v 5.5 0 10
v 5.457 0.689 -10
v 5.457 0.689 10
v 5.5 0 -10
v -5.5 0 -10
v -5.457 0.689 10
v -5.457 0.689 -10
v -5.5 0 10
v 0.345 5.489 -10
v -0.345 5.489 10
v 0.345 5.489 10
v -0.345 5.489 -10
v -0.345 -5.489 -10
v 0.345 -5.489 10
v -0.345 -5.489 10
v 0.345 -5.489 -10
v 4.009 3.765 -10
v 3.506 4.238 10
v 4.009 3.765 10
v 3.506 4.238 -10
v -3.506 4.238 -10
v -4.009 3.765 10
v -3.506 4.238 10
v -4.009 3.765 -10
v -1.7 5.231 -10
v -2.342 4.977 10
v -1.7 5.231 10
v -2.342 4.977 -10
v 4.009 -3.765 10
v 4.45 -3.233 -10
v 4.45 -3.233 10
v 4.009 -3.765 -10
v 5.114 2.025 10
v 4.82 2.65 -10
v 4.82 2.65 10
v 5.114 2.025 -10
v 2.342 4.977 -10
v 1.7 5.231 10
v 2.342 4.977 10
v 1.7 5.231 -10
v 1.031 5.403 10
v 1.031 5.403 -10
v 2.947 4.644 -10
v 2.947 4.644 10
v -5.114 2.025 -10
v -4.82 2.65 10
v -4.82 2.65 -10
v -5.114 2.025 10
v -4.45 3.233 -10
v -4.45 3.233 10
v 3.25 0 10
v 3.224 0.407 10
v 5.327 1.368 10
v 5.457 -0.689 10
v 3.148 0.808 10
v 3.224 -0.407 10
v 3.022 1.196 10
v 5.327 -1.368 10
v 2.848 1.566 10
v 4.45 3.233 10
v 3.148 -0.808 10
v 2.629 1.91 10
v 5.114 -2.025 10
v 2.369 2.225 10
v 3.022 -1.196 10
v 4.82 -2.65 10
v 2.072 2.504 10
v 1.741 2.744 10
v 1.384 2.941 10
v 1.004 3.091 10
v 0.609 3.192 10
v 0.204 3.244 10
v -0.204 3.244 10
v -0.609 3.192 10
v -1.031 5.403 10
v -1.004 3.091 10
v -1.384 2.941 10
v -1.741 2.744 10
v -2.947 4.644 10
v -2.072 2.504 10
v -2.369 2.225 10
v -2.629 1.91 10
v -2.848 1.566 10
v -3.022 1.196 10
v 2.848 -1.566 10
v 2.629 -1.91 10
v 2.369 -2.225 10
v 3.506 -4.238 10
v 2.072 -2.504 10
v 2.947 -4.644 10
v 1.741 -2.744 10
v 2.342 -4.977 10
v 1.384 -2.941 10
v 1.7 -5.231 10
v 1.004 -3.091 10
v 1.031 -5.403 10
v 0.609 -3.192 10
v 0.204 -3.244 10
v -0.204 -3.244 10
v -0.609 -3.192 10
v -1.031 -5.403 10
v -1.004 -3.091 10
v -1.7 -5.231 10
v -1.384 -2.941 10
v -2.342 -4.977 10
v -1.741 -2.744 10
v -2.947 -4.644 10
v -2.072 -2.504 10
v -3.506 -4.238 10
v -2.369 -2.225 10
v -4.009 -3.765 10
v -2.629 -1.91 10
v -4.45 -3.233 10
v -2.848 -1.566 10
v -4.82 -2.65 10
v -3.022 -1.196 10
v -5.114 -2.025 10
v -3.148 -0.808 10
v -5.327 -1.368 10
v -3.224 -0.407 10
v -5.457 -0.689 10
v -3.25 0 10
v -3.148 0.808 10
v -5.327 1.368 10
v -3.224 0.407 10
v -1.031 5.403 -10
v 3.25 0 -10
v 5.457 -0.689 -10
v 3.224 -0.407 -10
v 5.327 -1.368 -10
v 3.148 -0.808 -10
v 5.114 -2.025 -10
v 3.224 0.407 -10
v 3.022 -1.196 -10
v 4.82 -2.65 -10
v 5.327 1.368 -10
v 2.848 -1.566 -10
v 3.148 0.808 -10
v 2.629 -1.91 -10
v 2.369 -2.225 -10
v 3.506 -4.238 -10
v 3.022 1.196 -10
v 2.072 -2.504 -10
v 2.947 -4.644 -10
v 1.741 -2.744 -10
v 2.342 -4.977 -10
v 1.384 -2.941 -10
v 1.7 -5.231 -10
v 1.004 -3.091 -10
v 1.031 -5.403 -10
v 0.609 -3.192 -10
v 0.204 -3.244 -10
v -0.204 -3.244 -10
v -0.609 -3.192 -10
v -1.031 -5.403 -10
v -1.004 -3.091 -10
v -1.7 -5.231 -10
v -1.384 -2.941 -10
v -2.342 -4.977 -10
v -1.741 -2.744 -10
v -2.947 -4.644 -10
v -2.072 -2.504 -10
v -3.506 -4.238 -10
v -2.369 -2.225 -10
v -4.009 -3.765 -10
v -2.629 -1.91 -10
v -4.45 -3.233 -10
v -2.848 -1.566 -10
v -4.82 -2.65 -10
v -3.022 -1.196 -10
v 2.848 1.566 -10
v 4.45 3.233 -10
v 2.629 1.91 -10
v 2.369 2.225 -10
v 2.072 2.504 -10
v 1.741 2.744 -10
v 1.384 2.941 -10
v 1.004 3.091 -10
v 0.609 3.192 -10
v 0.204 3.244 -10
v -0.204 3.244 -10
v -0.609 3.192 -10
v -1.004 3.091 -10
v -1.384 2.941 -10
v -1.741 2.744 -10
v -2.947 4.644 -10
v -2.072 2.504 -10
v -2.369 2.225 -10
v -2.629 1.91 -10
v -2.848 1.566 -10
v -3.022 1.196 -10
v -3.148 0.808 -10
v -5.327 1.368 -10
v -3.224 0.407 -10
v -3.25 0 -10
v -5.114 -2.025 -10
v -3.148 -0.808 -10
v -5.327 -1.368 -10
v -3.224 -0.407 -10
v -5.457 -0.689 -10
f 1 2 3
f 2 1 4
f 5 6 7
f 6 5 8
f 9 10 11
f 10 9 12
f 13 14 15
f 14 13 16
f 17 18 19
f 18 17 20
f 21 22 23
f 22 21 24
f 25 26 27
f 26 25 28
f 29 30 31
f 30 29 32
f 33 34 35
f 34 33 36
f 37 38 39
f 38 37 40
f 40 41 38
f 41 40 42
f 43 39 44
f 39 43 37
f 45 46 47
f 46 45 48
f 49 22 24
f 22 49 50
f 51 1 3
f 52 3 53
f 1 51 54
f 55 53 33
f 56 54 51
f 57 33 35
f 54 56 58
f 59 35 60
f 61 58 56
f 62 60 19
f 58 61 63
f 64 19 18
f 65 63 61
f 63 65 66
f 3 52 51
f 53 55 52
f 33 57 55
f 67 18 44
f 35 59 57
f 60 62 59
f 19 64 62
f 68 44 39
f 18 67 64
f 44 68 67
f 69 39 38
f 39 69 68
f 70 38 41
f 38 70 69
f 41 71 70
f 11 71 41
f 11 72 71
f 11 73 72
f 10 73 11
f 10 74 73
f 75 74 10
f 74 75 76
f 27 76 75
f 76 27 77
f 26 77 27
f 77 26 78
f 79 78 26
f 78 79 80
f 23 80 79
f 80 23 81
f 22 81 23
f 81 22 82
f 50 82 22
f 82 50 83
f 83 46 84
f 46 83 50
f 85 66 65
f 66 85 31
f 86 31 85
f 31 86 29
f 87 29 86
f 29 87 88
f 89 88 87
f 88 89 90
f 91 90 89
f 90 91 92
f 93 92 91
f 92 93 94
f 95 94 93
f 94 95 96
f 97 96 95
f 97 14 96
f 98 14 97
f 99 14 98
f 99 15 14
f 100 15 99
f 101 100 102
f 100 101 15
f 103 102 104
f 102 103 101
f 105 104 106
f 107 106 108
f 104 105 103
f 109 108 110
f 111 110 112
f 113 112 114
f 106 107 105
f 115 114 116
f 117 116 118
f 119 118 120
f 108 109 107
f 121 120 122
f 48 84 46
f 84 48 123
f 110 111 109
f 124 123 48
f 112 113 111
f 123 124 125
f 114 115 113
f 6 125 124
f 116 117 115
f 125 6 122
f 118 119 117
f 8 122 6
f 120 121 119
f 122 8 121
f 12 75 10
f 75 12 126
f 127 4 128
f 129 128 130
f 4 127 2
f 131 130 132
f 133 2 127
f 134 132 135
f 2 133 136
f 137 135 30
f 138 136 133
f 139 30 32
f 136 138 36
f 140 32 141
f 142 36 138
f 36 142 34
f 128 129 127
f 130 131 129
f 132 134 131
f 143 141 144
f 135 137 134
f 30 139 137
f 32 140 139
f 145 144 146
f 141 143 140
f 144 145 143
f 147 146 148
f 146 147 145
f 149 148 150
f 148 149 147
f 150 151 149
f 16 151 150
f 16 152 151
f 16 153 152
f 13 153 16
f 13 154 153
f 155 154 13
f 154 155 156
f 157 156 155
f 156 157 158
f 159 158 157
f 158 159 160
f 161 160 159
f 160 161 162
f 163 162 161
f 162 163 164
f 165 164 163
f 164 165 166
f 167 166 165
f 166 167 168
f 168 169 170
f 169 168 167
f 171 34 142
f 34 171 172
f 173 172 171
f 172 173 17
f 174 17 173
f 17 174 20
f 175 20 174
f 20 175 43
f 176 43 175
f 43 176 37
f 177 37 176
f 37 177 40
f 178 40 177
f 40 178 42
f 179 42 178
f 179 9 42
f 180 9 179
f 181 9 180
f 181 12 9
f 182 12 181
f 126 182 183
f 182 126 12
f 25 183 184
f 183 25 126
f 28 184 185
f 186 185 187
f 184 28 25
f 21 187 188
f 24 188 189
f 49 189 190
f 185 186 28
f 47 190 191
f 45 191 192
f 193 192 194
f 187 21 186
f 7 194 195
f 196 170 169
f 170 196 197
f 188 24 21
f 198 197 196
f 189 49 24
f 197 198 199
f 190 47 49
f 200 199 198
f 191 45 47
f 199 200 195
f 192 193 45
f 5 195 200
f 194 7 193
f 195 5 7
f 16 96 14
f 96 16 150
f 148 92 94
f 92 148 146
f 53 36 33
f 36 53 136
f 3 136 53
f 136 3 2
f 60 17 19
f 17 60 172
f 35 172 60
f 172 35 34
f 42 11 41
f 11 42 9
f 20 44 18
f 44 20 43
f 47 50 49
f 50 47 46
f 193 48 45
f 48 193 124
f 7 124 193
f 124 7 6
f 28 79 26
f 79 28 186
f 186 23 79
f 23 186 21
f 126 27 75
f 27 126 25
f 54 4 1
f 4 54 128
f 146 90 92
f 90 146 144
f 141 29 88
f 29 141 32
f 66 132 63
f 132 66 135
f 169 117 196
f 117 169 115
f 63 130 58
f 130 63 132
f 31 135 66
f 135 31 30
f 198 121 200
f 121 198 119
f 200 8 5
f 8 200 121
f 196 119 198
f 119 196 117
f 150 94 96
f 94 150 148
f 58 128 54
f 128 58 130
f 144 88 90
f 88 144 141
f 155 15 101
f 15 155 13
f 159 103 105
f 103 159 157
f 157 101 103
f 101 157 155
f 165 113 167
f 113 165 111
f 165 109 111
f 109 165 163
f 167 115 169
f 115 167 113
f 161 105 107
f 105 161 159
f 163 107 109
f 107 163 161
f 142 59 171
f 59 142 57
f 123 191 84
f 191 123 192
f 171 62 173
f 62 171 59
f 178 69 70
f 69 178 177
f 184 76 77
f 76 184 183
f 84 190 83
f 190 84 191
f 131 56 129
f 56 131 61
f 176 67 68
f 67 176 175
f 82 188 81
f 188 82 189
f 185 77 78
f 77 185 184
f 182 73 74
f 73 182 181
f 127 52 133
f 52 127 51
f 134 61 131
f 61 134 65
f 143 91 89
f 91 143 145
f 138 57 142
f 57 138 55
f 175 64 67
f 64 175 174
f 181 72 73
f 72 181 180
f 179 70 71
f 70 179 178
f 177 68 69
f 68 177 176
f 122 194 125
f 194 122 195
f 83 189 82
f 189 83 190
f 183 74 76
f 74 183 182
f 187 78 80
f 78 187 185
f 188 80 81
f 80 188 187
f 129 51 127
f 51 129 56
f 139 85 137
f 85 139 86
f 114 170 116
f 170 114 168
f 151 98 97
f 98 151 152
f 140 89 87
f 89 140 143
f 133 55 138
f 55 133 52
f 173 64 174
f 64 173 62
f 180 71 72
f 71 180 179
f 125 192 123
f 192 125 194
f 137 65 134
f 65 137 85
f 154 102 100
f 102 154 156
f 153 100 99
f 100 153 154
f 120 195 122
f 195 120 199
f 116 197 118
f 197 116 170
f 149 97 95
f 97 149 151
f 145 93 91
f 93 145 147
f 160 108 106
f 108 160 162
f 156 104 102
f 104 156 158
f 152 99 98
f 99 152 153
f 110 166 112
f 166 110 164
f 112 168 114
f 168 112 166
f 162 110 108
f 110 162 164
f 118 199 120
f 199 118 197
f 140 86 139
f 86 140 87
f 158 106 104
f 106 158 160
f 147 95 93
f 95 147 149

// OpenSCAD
$fn = 50;


difference() {
	union() {
		translate(v = [0, 0, -10.0000000000]) {
			cylinder(h = 20, r = 5.5000000000);
		}
	}
	union() {
		translate(v = [0, 0, -100.0000000000]) {
			cylinder(h = 200, r = 3.2500000000);
		}
	}
}
